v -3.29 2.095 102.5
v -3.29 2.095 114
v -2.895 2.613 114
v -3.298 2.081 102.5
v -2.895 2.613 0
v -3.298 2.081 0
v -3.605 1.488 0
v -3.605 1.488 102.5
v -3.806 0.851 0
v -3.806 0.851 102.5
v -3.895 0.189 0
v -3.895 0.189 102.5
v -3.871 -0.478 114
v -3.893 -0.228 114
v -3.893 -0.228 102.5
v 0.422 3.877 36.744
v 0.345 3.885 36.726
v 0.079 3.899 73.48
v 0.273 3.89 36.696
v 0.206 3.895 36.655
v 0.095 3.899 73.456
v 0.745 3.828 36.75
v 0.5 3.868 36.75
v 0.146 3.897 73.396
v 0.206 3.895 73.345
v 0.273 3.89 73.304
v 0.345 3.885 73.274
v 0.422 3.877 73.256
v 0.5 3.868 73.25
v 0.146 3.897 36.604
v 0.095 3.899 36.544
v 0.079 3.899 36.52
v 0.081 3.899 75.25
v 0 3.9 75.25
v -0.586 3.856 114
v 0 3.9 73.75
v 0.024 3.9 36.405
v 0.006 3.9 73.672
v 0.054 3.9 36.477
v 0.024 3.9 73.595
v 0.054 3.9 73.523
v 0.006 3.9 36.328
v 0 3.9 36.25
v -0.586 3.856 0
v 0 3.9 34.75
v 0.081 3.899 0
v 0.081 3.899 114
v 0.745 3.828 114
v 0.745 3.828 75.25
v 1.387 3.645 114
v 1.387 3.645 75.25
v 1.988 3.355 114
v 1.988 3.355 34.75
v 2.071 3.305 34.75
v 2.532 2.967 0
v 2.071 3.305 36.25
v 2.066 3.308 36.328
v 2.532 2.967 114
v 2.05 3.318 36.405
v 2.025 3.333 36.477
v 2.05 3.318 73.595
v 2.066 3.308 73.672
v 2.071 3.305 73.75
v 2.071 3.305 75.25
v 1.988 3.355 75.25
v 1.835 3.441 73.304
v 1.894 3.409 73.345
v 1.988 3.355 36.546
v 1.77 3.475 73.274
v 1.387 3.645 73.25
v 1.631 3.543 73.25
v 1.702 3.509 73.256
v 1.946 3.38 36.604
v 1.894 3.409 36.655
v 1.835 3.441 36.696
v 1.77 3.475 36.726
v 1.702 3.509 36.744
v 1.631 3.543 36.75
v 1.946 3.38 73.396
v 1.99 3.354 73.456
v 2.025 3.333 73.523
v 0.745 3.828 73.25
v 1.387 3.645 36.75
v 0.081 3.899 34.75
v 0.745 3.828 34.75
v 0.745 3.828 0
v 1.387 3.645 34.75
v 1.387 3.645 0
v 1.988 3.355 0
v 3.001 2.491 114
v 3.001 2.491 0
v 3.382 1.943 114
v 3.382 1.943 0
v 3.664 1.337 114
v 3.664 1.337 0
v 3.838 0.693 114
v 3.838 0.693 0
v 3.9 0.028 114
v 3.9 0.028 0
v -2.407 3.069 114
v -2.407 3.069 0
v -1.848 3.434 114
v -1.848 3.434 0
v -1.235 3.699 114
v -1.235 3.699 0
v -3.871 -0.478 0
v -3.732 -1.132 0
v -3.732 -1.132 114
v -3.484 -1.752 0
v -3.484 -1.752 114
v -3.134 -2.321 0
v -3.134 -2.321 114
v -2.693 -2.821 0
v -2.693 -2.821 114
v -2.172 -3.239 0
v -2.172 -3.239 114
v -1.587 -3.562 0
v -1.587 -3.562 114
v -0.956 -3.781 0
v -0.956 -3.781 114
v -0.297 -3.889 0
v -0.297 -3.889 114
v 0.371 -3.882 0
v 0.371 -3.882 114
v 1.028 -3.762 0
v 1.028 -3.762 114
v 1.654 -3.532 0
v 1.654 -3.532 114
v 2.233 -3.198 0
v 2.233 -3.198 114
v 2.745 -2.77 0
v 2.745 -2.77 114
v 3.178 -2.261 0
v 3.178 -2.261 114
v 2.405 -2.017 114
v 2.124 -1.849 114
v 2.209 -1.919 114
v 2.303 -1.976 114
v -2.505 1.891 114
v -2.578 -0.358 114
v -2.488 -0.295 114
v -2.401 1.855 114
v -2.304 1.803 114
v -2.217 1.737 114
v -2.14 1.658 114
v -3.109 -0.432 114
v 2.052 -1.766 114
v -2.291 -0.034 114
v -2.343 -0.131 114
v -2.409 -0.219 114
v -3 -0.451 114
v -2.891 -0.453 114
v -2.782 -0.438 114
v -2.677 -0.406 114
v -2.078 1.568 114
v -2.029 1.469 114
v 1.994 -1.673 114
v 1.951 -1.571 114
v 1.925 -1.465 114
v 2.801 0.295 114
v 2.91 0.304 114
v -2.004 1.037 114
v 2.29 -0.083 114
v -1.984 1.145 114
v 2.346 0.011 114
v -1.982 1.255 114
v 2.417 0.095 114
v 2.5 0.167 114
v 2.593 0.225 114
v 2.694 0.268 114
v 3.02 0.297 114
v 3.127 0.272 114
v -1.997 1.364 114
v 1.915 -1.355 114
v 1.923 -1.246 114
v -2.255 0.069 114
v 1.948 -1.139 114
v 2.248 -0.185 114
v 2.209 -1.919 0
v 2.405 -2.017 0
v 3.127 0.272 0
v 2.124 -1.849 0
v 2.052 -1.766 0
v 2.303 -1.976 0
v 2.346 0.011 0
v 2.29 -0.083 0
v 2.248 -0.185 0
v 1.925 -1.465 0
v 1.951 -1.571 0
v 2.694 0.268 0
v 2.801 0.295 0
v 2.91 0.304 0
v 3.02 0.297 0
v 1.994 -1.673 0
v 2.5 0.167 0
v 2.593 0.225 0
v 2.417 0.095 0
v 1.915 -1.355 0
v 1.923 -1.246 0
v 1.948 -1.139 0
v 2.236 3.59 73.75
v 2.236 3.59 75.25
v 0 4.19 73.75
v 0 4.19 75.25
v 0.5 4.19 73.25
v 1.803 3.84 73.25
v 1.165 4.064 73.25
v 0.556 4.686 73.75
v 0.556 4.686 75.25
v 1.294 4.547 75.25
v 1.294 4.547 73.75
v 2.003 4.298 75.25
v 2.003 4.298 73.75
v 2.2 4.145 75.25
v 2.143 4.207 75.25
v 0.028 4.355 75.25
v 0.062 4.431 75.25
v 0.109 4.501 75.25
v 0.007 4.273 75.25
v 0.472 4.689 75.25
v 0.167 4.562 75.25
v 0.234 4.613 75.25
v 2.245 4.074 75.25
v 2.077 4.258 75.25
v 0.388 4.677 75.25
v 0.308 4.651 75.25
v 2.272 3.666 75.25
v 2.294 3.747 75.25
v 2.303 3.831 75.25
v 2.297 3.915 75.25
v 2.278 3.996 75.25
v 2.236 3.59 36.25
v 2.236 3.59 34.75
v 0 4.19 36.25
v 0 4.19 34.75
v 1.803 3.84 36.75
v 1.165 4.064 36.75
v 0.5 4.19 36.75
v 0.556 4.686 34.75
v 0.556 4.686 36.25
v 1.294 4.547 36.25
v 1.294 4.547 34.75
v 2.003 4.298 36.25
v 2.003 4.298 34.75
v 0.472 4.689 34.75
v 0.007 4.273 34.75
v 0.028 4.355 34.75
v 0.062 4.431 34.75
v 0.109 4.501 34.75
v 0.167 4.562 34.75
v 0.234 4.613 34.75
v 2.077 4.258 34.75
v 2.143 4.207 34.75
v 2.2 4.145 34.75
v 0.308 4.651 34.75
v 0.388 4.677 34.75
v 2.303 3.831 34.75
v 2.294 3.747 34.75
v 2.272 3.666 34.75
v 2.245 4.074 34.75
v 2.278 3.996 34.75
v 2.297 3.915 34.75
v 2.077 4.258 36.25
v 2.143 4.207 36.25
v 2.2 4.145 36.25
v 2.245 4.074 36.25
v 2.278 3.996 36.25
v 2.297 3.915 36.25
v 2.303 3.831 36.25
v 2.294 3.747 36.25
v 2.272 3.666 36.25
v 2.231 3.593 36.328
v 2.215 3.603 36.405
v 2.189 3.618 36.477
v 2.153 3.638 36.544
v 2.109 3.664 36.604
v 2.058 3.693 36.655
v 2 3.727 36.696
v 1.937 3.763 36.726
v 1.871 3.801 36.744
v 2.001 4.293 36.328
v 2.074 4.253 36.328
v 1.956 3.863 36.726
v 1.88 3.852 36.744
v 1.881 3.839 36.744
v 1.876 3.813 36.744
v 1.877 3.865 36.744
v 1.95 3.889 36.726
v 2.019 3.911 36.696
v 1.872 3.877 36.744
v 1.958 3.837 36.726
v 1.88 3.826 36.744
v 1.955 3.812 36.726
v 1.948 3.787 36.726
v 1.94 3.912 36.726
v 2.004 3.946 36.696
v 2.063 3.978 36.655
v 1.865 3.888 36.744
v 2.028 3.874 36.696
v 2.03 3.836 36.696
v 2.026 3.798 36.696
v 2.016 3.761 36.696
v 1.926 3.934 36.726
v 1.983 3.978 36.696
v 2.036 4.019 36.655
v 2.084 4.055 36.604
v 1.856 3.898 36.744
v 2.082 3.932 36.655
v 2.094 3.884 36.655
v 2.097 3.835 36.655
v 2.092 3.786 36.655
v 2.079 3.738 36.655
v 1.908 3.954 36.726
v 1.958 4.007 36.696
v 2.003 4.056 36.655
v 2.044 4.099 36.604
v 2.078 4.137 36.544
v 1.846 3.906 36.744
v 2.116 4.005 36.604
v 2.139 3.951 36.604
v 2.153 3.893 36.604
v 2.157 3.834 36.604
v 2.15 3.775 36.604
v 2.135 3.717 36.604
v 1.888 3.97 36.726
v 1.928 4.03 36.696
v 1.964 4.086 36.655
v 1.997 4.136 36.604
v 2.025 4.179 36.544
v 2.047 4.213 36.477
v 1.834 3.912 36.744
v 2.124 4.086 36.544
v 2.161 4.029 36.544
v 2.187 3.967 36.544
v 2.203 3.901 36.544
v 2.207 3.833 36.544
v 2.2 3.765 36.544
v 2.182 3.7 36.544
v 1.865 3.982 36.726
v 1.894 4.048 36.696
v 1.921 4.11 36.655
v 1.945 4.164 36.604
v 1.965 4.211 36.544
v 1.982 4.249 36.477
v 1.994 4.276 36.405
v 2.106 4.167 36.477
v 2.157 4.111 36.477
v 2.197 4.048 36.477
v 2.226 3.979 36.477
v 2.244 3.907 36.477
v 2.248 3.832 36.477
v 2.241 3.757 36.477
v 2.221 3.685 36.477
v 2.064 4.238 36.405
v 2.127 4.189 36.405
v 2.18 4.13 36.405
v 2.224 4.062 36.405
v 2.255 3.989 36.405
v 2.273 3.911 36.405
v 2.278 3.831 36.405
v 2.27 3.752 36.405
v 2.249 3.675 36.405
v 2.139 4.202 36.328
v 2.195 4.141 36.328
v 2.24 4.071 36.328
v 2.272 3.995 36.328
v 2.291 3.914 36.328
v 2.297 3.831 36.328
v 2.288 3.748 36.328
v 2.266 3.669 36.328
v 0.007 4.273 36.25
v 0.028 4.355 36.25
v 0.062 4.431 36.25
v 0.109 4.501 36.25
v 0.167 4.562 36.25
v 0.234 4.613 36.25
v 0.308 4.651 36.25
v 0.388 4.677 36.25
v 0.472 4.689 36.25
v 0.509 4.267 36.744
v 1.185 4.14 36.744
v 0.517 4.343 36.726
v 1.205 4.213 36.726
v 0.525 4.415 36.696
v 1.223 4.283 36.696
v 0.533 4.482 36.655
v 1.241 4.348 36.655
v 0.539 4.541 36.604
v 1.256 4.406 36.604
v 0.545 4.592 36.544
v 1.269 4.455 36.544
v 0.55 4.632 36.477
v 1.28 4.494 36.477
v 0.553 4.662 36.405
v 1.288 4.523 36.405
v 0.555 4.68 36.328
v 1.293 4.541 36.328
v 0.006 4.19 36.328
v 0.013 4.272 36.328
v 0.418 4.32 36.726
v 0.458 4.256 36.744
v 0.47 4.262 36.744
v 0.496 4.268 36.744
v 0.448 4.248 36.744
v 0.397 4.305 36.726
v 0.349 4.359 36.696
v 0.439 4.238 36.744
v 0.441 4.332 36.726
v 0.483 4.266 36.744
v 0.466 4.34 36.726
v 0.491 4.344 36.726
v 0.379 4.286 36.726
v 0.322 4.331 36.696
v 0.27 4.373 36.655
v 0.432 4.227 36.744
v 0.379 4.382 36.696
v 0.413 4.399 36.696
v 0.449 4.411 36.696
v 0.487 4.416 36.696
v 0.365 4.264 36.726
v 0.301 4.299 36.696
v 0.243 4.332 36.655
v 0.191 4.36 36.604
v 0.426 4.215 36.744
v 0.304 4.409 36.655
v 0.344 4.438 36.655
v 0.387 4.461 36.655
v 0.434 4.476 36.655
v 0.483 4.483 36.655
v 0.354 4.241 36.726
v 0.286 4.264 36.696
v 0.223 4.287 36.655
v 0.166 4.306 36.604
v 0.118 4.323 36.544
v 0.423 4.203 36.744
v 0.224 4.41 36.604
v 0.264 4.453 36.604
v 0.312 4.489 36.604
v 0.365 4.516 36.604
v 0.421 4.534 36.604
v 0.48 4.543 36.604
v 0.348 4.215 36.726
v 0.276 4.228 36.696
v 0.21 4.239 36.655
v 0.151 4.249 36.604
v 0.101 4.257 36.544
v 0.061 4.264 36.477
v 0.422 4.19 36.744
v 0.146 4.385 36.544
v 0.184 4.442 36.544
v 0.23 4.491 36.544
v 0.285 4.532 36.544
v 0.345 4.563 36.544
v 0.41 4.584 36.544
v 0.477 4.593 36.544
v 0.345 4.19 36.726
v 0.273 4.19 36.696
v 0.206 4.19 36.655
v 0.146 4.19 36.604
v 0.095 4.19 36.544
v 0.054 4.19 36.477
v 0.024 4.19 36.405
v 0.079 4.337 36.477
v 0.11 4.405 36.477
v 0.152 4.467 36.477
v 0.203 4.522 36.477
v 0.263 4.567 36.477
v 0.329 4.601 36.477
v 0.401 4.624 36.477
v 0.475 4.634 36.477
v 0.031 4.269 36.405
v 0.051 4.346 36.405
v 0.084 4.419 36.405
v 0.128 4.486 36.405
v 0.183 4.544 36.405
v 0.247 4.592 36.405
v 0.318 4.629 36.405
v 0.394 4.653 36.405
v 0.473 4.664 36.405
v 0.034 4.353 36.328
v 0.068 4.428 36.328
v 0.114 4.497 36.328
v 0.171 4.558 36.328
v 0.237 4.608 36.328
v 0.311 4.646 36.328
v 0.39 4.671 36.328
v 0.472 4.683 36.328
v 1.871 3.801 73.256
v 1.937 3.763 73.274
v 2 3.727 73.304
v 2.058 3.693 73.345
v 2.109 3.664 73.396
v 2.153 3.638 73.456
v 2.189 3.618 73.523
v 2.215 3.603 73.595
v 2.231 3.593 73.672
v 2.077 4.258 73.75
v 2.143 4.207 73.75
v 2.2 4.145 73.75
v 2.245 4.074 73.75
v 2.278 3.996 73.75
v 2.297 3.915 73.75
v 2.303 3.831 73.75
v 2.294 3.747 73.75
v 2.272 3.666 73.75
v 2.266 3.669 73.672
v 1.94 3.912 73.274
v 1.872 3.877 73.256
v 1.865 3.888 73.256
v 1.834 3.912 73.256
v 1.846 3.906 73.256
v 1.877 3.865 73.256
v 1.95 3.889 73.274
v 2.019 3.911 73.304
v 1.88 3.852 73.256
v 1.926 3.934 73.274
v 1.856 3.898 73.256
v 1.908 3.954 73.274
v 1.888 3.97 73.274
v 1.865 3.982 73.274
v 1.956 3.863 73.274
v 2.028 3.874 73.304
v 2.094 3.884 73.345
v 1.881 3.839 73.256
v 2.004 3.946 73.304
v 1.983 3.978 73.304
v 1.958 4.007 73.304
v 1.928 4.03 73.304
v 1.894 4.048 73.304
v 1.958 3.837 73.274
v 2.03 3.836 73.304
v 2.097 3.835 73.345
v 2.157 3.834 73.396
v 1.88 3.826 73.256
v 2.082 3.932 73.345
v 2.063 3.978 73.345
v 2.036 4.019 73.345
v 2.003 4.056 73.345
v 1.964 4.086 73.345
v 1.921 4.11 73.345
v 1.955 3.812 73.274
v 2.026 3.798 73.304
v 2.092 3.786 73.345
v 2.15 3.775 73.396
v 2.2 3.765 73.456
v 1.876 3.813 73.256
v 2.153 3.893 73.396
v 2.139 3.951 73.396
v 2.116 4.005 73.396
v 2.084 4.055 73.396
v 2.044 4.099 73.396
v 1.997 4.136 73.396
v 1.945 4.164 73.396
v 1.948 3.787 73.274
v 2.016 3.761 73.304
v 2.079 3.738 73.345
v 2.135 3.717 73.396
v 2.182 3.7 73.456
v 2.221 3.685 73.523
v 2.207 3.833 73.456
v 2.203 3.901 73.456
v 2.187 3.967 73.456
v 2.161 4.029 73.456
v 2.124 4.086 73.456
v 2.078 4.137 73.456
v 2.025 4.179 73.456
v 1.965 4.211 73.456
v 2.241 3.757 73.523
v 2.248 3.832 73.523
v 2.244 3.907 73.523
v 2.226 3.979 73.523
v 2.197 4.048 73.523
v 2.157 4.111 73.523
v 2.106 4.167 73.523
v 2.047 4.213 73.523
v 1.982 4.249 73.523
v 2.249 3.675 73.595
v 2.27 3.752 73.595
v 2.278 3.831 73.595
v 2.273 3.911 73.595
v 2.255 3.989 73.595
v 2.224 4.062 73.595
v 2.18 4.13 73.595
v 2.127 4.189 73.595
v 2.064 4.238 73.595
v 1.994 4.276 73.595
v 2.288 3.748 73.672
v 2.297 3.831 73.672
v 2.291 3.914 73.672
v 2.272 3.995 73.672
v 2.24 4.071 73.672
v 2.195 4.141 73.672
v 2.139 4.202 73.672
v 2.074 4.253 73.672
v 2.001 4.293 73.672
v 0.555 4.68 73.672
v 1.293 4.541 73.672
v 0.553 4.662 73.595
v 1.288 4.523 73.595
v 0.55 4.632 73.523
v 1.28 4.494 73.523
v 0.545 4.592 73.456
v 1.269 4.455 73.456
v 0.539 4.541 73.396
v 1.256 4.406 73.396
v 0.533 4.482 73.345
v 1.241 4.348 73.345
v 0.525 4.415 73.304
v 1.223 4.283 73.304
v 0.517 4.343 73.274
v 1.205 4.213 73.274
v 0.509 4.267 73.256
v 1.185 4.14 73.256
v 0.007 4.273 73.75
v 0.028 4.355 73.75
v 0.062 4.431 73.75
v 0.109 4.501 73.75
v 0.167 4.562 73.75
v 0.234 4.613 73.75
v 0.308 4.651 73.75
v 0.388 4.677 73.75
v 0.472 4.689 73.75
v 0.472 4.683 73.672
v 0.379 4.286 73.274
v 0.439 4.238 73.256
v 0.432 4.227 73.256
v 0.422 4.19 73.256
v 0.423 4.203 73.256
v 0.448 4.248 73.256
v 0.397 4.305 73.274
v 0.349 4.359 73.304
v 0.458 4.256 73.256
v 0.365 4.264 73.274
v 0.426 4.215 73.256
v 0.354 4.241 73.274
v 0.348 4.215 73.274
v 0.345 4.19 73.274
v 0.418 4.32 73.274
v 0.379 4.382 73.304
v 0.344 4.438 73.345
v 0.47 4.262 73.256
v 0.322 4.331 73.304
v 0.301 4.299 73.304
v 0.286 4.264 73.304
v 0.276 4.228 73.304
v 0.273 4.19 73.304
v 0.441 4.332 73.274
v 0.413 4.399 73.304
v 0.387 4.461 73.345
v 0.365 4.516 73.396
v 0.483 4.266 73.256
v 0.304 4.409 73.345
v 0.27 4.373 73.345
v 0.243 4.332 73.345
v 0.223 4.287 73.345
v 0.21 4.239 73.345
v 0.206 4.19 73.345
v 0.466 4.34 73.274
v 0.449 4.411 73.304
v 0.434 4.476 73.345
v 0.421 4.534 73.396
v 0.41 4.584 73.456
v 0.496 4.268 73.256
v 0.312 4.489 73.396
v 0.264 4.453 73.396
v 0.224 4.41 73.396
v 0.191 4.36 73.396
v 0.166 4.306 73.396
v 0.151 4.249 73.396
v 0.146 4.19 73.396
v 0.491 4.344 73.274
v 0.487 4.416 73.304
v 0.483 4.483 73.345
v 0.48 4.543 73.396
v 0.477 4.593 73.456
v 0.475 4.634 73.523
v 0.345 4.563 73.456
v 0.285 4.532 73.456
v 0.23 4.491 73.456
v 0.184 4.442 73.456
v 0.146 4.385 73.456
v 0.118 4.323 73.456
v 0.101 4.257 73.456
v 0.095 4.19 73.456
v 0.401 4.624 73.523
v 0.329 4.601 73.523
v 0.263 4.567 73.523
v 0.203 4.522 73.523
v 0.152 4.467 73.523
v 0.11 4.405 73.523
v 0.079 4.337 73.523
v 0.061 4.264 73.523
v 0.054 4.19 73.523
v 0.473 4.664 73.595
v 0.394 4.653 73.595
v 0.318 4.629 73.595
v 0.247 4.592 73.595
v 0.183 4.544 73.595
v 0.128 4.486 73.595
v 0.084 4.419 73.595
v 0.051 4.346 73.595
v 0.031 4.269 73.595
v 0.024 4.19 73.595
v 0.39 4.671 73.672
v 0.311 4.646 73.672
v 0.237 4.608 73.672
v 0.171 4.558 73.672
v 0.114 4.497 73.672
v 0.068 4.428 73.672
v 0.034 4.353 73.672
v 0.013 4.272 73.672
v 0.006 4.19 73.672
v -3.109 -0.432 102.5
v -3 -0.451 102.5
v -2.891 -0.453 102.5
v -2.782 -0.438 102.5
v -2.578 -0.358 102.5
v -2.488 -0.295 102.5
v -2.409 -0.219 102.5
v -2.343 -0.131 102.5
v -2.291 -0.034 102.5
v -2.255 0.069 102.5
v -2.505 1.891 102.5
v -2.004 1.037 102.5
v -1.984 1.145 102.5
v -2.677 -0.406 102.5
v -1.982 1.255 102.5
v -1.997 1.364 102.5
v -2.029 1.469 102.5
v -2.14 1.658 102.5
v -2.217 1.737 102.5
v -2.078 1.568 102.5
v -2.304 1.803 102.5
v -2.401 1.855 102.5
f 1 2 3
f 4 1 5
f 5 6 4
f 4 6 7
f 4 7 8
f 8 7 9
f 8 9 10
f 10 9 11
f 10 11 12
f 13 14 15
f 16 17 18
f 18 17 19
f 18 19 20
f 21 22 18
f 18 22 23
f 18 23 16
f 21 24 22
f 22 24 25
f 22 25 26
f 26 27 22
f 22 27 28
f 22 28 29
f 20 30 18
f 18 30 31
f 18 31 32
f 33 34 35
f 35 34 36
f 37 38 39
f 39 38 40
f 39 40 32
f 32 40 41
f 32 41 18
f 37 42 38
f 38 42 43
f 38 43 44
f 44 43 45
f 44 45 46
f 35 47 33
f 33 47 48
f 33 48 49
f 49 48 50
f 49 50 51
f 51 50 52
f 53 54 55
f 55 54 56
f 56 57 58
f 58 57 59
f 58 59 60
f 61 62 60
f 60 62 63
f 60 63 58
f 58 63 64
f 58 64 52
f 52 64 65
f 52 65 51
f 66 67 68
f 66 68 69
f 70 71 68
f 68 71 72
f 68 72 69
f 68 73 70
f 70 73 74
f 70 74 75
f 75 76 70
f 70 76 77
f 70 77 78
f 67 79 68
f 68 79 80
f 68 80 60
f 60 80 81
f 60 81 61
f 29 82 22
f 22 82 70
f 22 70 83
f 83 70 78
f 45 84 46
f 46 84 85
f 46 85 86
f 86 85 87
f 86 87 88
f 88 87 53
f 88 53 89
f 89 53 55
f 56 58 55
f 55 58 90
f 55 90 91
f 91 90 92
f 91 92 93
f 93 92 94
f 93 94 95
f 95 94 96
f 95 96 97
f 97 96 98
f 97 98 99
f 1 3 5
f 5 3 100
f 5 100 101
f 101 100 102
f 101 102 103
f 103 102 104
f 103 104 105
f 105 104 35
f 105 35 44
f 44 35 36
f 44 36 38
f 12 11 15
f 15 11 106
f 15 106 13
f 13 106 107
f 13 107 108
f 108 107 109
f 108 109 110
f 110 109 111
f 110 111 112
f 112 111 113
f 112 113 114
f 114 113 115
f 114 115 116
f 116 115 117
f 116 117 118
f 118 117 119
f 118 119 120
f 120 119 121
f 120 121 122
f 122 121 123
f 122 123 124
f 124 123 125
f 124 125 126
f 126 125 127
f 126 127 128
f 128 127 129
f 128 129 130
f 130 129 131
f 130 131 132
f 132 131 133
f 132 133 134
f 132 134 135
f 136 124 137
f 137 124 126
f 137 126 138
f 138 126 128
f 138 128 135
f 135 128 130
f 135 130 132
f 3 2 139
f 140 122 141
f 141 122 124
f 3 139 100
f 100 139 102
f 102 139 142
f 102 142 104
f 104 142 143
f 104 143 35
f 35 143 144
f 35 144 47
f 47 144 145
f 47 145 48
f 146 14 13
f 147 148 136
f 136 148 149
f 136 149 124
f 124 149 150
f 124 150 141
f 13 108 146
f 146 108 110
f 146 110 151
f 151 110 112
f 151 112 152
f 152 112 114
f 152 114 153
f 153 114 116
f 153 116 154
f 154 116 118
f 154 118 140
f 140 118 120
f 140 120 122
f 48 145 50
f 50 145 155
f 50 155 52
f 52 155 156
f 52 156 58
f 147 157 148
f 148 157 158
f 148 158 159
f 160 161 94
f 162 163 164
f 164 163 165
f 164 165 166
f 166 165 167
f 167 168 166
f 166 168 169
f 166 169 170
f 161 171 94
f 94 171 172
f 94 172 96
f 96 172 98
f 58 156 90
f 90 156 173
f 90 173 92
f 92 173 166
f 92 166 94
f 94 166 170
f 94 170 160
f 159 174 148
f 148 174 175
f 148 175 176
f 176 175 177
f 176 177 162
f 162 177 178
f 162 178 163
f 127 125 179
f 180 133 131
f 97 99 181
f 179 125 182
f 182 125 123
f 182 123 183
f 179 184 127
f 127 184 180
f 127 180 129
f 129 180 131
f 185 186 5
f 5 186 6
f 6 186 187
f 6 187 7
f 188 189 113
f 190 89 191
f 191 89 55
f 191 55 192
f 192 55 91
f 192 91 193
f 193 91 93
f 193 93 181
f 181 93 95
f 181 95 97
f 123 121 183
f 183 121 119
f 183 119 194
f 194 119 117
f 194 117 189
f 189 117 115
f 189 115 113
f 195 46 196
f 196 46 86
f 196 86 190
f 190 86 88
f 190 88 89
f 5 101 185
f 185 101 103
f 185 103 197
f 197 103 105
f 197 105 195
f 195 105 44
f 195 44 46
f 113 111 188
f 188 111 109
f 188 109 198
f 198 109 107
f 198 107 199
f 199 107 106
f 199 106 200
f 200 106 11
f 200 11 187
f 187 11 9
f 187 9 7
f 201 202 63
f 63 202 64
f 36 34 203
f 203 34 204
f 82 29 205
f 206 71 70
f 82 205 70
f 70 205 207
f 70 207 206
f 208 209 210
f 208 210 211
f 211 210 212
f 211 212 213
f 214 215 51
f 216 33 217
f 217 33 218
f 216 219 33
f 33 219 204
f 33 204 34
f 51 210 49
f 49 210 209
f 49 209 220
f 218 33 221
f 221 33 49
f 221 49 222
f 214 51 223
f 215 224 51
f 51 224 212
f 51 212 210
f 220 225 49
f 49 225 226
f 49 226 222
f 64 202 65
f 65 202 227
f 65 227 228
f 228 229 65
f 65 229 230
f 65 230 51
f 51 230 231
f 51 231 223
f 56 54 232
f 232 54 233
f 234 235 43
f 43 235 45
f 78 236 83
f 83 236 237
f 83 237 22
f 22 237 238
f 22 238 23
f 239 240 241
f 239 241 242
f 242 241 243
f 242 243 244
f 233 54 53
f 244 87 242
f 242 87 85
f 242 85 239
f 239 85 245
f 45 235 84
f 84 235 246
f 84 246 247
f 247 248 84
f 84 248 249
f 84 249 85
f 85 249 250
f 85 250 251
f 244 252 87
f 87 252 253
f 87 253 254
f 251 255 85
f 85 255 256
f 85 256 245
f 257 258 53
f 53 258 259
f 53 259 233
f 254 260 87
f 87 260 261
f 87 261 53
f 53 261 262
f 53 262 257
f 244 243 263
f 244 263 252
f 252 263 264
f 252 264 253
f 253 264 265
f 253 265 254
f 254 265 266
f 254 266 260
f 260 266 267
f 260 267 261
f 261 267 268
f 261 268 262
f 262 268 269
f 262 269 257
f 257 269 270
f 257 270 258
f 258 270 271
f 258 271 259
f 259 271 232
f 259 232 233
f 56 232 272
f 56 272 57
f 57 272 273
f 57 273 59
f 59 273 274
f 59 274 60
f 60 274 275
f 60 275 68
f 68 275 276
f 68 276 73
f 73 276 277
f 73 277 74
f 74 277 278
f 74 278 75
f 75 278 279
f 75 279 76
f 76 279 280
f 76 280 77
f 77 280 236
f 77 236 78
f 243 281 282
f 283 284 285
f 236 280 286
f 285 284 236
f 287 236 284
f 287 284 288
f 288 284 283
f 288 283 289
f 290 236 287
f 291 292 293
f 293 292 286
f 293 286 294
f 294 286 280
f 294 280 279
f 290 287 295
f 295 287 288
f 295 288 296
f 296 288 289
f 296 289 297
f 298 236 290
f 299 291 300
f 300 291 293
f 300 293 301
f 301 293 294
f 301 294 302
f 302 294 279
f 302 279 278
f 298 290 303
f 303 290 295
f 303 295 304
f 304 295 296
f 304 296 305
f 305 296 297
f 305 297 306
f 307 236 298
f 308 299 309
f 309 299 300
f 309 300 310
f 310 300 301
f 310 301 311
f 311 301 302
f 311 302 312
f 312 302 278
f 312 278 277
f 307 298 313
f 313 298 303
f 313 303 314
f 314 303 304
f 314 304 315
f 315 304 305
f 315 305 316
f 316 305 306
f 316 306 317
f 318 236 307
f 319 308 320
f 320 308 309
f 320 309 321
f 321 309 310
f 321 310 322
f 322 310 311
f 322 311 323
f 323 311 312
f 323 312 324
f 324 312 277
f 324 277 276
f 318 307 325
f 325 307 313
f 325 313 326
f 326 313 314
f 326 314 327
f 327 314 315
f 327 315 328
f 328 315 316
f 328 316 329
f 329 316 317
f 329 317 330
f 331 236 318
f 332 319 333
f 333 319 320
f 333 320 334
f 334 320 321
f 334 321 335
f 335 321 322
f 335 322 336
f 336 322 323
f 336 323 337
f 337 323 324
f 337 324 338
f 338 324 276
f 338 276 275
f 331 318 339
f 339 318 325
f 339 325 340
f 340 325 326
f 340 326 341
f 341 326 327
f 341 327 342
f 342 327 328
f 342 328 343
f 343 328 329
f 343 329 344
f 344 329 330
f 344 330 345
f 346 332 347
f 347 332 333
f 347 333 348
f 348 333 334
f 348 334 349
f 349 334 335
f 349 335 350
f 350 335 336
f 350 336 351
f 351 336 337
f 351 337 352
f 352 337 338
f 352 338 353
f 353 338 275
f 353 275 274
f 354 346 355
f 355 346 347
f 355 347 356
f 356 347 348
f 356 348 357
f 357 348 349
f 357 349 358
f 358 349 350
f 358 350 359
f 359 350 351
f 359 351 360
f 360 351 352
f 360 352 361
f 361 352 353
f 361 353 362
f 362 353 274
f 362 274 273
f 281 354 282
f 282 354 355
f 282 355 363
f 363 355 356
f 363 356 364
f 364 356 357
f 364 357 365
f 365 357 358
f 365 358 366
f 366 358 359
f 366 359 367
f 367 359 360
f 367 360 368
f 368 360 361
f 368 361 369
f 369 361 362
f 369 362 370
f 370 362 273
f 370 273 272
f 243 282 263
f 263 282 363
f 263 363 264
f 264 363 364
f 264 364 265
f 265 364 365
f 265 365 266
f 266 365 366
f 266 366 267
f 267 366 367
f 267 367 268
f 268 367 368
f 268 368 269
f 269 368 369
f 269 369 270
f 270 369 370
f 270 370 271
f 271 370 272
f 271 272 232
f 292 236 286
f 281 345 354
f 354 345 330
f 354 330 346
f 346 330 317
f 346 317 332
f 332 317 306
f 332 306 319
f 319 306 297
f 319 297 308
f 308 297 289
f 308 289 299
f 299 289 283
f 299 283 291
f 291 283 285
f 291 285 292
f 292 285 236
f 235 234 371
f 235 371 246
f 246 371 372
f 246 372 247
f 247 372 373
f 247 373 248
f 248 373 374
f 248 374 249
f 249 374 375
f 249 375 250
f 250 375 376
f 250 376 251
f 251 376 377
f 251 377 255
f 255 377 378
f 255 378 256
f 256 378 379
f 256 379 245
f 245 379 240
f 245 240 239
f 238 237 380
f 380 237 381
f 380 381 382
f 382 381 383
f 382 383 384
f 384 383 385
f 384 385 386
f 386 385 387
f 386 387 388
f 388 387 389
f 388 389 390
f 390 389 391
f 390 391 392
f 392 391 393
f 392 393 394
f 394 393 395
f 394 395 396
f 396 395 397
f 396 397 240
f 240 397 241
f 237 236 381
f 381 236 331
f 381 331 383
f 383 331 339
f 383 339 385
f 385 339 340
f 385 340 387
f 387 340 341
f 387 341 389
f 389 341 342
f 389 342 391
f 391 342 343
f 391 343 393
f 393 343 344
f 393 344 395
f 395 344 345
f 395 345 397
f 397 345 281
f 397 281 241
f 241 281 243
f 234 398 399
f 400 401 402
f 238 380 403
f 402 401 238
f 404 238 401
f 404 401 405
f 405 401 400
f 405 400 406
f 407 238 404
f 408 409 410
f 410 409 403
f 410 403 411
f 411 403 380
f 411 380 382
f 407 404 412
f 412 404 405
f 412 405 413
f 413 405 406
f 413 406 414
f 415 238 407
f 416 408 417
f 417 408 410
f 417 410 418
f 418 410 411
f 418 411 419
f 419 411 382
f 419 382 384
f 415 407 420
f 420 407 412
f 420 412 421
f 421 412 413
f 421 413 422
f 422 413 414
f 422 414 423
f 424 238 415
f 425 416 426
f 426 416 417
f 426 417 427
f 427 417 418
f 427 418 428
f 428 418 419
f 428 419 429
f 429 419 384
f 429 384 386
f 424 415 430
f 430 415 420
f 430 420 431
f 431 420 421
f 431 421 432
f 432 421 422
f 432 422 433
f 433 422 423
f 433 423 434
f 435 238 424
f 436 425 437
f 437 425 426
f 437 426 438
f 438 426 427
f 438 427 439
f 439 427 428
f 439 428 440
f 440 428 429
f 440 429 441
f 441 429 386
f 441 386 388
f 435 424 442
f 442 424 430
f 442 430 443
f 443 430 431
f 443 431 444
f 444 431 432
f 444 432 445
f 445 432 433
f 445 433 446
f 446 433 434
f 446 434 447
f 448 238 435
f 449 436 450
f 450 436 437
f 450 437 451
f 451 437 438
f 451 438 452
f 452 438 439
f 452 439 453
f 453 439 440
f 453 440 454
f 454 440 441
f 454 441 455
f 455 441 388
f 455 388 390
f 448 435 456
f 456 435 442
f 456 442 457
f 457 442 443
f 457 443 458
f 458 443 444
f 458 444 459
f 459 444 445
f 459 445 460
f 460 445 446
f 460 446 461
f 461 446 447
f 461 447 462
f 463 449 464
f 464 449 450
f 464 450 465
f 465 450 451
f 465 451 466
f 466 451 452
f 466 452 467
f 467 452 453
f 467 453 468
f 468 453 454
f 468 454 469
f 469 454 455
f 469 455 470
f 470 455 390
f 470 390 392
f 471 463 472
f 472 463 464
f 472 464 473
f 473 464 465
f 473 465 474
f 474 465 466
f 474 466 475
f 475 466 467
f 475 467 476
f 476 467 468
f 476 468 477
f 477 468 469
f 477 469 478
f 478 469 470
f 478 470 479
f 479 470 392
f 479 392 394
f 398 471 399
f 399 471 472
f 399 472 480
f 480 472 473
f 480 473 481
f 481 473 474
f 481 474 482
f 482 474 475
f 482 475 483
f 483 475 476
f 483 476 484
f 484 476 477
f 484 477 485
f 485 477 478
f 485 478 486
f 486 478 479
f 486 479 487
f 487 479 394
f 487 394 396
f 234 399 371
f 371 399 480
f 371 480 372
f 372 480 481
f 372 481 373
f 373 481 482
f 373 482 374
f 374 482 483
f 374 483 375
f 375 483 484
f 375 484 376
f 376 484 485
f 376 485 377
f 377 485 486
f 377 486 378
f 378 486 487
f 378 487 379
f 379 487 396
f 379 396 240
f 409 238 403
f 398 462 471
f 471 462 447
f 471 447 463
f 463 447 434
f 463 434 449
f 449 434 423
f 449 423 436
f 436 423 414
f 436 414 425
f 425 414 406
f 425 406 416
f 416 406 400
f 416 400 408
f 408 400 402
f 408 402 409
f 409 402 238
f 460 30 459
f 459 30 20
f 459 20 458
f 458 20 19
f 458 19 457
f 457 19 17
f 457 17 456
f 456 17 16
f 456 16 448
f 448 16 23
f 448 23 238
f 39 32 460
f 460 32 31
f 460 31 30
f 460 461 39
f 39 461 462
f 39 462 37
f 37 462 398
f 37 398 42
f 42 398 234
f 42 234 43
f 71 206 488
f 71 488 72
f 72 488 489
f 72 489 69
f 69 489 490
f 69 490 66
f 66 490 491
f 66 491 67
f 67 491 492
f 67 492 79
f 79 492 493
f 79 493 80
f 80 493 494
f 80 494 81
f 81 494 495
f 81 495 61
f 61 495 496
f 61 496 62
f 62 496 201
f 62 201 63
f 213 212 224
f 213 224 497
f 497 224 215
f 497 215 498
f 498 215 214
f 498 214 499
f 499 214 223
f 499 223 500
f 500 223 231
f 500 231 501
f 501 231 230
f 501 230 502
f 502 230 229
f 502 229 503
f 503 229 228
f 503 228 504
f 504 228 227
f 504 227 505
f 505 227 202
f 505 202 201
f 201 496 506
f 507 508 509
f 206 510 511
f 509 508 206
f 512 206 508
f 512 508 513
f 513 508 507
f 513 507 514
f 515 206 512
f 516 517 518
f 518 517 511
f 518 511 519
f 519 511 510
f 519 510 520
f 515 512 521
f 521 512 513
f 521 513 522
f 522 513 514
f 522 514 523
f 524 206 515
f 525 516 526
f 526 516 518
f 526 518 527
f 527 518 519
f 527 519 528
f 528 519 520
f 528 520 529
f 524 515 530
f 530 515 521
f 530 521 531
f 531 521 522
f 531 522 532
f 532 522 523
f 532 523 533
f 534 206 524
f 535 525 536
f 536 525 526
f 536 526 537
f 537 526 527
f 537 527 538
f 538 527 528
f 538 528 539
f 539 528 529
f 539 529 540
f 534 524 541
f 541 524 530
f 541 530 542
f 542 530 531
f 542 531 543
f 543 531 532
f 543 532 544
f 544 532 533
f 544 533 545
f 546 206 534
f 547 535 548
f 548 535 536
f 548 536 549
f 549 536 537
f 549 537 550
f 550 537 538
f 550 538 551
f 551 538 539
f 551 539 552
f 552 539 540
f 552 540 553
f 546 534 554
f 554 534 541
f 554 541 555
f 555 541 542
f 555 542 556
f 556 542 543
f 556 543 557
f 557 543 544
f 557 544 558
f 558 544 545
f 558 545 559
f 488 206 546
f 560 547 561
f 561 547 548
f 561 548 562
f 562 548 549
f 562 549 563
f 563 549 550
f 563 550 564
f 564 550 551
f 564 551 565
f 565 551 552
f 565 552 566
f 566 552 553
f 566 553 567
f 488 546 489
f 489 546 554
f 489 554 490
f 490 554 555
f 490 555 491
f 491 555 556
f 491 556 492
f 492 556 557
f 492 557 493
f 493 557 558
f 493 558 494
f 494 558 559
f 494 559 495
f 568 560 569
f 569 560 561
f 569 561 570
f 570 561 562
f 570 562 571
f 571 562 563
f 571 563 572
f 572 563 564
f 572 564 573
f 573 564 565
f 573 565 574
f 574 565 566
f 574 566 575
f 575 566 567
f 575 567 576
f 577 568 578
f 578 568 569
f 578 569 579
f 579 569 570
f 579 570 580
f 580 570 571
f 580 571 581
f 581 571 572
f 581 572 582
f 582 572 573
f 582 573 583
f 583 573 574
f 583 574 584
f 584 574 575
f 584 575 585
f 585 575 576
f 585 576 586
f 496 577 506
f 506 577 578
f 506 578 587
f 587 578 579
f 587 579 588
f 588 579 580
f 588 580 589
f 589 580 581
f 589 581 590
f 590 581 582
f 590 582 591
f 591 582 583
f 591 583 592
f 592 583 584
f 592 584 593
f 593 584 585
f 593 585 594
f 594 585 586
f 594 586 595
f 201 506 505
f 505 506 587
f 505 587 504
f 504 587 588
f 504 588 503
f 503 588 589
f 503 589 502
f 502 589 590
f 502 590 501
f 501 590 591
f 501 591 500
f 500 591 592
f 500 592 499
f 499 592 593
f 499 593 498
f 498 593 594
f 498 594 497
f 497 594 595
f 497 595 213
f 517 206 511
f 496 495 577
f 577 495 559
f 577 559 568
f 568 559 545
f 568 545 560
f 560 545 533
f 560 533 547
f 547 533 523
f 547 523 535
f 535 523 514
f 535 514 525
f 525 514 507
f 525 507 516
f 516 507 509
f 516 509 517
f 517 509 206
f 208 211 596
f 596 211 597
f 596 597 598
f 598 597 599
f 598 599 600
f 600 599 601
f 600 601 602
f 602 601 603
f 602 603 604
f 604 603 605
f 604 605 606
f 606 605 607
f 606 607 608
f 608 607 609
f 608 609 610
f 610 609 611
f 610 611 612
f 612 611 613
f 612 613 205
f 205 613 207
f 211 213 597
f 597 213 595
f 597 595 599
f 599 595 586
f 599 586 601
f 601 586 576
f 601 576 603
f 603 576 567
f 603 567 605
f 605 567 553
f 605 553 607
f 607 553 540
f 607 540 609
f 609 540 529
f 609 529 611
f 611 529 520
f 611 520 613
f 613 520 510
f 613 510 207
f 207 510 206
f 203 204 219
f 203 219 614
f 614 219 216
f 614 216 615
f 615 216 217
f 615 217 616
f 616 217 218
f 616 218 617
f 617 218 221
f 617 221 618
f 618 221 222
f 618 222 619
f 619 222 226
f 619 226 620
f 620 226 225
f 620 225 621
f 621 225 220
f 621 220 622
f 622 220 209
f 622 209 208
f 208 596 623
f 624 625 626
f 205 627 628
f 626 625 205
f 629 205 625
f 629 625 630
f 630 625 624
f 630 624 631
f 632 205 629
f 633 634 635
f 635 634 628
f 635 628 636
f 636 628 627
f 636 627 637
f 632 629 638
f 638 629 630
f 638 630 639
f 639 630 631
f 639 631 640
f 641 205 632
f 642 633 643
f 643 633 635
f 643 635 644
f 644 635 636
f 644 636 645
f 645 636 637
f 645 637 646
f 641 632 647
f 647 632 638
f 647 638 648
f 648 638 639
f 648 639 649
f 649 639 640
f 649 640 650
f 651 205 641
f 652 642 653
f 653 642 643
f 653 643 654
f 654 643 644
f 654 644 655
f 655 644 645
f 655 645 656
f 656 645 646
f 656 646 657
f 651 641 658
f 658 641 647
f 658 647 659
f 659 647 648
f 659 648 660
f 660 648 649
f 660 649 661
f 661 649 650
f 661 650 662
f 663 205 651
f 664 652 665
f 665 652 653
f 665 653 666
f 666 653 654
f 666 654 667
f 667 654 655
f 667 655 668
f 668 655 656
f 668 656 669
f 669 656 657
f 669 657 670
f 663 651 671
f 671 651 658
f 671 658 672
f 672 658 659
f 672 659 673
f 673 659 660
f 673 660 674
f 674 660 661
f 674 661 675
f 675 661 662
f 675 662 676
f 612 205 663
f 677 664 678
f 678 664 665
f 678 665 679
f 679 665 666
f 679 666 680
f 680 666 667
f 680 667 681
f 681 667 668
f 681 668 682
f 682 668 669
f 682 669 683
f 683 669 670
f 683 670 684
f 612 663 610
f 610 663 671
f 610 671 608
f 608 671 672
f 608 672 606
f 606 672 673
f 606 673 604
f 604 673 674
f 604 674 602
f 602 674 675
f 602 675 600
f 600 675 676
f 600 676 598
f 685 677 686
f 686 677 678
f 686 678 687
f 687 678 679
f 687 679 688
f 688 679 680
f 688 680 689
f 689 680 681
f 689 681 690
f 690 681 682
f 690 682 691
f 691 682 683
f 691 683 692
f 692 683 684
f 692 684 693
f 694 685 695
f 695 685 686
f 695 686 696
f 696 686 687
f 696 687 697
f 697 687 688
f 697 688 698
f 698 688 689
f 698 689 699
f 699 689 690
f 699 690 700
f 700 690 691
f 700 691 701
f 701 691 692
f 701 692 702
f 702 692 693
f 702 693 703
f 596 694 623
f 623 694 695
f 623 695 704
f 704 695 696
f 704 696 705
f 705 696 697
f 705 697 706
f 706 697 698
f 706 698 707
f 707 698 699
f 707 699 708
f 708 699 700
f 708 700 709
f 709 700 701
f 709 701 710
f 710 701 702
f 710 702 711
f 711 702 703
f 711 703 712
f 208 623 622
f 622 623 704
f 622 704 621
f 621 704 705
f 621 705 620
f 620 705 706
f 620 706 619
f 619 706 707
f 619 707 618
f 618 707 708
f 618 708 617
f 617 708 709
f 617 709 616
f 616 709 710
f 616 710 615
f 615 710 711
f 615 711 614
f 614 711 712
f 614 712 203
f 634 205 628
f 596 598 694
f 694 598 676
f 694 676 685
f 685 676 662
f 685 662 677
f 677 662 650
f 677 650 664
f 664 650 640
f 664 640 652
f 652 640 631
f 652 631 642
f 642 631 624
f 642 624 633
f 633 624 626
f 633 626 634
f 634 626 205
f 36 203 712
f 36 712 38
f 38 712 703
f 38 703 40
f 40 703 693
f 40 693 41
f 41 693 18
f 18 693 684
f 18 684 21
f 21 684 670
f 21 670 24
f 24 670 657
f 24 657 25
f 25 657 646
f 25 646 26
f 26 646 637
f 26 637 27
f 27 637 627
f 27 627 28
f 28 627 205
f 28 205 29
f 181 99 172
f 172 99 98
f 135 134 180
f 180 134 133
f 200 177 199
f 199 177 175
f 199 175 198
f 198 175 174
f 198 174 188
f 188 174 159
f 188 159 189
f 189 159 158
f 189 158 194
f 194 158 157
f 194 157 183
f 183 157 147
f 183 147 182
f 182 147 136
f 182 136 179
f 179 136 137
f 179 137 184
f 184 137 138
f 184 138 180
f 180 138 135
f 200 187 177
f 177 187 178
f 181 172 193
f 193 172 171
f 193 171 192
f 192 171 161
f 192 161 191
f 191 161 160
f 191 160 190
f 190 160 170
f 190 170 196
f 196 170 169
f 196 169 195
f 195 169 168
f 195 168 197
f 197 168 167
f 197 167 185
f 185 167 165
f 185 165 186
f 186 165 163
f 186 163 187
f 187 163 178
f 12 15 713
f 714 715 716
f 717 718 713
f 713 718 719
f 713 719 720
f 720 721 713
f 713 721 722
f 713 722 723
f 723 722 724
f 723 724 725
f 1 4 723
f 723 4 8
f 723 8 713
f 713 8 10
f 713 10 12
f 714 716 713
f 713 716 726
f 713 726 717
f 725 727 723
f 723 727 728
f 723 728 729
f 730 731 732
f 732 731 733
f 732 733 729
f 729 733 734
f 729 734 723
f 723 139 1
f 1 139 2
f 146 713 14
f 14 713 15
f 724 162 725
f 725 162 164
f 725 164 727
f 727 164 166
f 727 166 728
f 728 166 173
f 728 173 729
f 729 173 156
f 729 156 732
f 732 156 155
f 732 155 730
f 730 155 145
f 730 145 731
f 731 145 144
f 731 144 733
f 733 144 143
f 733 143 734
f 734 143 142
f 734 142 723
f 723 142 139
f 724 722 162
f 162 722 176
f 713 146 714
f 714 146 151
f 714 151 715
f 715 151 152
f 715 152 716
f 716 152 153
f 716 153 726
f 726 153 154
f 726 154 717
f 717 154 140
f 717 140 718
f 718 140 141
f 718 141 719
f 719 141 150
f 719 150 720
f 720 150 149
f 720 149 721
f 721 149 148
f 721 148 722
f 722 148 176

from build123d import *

# Parameters (mm, degrees)
SZKIC1_R                    = 3.9
DODANIE_WYCI_GNI_CIE1_DEPTH = 114
SZKIC4_W                    = 2
SZKIC4_H                    = 5
OBR_T1_ANGLE                = 30
ZAOKR_GLENIE5_R             = 0.5
WYTNIJ_WYCI_GNI_CIE1_DEPTH  = 114
WYTNIJ_WYCI_GNI_CIE2_DEPTH  = 11.5


with BuildPart() as part:
    # Szkic1 → Dodanie-wyci_gni_cie1 (new body)
    with BuildSketch(Plane.XY):
        Circle(SZKIC1_R)
    extrude(amount=DODANIE_WYCI_GNI_CIE1_DEPTH)

    # Szkic4 → Obr_t1 (revolve)
    with BuildSketch(Plane(origin=(0, 0, 0), x_dir=(0, 0, -1), z_dir=(1, 0, 0))):
        with Locations((-74.25, 2.217381868)):
            Rectangle(SZKIC4_W, SZKIC4_H)
        with Locations((-35.75, 2.217381868)):
            Rectangle(SZKIC4_W, SZKIC4_H)
    revolve(axis=Axis((0, -0.282618132, 75.25), (0, 0, -1)), revolution_arc=OBR_T1_ANGLE)

    # Zaokr_glenie5
    zaokr_glenie5_edges = [part.edges().sort_by_distance(p)[0] for p in [
        (2.5, 4.047508887, 35.75),
        (0, 4.308690934, 36.75),
        (2.285548402, 3.676067824, 36.75),
        (1.294095226, 4.547010999, 36.75),
        (0, 4.717381868, 35.75),
        (2.285548402, 3.676067824, 73.25),
        (0, 4.717381868, 74.25),
        (0, 4.308690934, 73.25),
        (2.5, 4.047508887, 74.25),
        (1.294095226, 4.547010999, 73.25),
    ]]
    fillet(zaokr_glenie5_edges, radius=ZAOKR_GLENIE5_R)

    # Szkic5 → Wytnij-wyci_gni_cie1 (cut)
    with BuildSketch(Plane.XY.offset(114)):
        with BuildLine():
            Line((2.24849307, -0.185145655), (1.947595825, -1.138802222))
            ThreePointArc((1.947595825, -1.138802222), (1.994182967, -1.672529674), (2.404527351, -2.016989891))
            Line((2.404527351, -2.016989891), (3.548915231, -2.378066585))
            Line((3.548915231, -2.378066585), (3.909991925, -1.233678704))
            Line((3.909991925, -1.233678704), (4.271068619, -0.089290824))
            Line((4.271068619, -0.089290824), (3.126680739, 0.27178587))
            ThreePointArc((3.126680739, 0.27178587), (2.592953287, 0.225198729), (2.24849307, -0.185145655))
        make_face()
    extrude(amount=-WYTNIJ_WYCI_GNI_CIE1_DEPTH, mode=Mode.SUBTRACT)

    # Szkic5_3 → Wytnij-wyci_gni_cie2 (cut)
    with BuildSketch(Plane.XY.offset(114)):
        with BuildLine():
            Line((-3.66646605, 2.192493262), (-2.505030255, 1.890720345))
            ThreePointArc((-2.505030255, 1.890720345), (-2.077521655, 1.567808977), (-2.003560242, 1.03718193))
            Line((-2.003560242, 1.03718193), (-2.255037673, 0.069318767))
            ThreePointArc((-2.255037673, 0.069318767), (-2.577949041, -0.358189833), (-3.108576089, -0.432151245))
            Line((-3.108576089, -0.432151245), (-4.270011884, -0.130378328))
            Line((-4.270011884, -0.130378328), (-3.968238967, 1.031057467))
            Line((-3.968238967, 1.031057467), (-3.66646605, 2.192493262))
        make_face()
    extrude(amount=-WYTNIJ_WYCI_GNI_CIE2_DEPTH, mode=Mode.SUBTRACT)


solid = part.part
